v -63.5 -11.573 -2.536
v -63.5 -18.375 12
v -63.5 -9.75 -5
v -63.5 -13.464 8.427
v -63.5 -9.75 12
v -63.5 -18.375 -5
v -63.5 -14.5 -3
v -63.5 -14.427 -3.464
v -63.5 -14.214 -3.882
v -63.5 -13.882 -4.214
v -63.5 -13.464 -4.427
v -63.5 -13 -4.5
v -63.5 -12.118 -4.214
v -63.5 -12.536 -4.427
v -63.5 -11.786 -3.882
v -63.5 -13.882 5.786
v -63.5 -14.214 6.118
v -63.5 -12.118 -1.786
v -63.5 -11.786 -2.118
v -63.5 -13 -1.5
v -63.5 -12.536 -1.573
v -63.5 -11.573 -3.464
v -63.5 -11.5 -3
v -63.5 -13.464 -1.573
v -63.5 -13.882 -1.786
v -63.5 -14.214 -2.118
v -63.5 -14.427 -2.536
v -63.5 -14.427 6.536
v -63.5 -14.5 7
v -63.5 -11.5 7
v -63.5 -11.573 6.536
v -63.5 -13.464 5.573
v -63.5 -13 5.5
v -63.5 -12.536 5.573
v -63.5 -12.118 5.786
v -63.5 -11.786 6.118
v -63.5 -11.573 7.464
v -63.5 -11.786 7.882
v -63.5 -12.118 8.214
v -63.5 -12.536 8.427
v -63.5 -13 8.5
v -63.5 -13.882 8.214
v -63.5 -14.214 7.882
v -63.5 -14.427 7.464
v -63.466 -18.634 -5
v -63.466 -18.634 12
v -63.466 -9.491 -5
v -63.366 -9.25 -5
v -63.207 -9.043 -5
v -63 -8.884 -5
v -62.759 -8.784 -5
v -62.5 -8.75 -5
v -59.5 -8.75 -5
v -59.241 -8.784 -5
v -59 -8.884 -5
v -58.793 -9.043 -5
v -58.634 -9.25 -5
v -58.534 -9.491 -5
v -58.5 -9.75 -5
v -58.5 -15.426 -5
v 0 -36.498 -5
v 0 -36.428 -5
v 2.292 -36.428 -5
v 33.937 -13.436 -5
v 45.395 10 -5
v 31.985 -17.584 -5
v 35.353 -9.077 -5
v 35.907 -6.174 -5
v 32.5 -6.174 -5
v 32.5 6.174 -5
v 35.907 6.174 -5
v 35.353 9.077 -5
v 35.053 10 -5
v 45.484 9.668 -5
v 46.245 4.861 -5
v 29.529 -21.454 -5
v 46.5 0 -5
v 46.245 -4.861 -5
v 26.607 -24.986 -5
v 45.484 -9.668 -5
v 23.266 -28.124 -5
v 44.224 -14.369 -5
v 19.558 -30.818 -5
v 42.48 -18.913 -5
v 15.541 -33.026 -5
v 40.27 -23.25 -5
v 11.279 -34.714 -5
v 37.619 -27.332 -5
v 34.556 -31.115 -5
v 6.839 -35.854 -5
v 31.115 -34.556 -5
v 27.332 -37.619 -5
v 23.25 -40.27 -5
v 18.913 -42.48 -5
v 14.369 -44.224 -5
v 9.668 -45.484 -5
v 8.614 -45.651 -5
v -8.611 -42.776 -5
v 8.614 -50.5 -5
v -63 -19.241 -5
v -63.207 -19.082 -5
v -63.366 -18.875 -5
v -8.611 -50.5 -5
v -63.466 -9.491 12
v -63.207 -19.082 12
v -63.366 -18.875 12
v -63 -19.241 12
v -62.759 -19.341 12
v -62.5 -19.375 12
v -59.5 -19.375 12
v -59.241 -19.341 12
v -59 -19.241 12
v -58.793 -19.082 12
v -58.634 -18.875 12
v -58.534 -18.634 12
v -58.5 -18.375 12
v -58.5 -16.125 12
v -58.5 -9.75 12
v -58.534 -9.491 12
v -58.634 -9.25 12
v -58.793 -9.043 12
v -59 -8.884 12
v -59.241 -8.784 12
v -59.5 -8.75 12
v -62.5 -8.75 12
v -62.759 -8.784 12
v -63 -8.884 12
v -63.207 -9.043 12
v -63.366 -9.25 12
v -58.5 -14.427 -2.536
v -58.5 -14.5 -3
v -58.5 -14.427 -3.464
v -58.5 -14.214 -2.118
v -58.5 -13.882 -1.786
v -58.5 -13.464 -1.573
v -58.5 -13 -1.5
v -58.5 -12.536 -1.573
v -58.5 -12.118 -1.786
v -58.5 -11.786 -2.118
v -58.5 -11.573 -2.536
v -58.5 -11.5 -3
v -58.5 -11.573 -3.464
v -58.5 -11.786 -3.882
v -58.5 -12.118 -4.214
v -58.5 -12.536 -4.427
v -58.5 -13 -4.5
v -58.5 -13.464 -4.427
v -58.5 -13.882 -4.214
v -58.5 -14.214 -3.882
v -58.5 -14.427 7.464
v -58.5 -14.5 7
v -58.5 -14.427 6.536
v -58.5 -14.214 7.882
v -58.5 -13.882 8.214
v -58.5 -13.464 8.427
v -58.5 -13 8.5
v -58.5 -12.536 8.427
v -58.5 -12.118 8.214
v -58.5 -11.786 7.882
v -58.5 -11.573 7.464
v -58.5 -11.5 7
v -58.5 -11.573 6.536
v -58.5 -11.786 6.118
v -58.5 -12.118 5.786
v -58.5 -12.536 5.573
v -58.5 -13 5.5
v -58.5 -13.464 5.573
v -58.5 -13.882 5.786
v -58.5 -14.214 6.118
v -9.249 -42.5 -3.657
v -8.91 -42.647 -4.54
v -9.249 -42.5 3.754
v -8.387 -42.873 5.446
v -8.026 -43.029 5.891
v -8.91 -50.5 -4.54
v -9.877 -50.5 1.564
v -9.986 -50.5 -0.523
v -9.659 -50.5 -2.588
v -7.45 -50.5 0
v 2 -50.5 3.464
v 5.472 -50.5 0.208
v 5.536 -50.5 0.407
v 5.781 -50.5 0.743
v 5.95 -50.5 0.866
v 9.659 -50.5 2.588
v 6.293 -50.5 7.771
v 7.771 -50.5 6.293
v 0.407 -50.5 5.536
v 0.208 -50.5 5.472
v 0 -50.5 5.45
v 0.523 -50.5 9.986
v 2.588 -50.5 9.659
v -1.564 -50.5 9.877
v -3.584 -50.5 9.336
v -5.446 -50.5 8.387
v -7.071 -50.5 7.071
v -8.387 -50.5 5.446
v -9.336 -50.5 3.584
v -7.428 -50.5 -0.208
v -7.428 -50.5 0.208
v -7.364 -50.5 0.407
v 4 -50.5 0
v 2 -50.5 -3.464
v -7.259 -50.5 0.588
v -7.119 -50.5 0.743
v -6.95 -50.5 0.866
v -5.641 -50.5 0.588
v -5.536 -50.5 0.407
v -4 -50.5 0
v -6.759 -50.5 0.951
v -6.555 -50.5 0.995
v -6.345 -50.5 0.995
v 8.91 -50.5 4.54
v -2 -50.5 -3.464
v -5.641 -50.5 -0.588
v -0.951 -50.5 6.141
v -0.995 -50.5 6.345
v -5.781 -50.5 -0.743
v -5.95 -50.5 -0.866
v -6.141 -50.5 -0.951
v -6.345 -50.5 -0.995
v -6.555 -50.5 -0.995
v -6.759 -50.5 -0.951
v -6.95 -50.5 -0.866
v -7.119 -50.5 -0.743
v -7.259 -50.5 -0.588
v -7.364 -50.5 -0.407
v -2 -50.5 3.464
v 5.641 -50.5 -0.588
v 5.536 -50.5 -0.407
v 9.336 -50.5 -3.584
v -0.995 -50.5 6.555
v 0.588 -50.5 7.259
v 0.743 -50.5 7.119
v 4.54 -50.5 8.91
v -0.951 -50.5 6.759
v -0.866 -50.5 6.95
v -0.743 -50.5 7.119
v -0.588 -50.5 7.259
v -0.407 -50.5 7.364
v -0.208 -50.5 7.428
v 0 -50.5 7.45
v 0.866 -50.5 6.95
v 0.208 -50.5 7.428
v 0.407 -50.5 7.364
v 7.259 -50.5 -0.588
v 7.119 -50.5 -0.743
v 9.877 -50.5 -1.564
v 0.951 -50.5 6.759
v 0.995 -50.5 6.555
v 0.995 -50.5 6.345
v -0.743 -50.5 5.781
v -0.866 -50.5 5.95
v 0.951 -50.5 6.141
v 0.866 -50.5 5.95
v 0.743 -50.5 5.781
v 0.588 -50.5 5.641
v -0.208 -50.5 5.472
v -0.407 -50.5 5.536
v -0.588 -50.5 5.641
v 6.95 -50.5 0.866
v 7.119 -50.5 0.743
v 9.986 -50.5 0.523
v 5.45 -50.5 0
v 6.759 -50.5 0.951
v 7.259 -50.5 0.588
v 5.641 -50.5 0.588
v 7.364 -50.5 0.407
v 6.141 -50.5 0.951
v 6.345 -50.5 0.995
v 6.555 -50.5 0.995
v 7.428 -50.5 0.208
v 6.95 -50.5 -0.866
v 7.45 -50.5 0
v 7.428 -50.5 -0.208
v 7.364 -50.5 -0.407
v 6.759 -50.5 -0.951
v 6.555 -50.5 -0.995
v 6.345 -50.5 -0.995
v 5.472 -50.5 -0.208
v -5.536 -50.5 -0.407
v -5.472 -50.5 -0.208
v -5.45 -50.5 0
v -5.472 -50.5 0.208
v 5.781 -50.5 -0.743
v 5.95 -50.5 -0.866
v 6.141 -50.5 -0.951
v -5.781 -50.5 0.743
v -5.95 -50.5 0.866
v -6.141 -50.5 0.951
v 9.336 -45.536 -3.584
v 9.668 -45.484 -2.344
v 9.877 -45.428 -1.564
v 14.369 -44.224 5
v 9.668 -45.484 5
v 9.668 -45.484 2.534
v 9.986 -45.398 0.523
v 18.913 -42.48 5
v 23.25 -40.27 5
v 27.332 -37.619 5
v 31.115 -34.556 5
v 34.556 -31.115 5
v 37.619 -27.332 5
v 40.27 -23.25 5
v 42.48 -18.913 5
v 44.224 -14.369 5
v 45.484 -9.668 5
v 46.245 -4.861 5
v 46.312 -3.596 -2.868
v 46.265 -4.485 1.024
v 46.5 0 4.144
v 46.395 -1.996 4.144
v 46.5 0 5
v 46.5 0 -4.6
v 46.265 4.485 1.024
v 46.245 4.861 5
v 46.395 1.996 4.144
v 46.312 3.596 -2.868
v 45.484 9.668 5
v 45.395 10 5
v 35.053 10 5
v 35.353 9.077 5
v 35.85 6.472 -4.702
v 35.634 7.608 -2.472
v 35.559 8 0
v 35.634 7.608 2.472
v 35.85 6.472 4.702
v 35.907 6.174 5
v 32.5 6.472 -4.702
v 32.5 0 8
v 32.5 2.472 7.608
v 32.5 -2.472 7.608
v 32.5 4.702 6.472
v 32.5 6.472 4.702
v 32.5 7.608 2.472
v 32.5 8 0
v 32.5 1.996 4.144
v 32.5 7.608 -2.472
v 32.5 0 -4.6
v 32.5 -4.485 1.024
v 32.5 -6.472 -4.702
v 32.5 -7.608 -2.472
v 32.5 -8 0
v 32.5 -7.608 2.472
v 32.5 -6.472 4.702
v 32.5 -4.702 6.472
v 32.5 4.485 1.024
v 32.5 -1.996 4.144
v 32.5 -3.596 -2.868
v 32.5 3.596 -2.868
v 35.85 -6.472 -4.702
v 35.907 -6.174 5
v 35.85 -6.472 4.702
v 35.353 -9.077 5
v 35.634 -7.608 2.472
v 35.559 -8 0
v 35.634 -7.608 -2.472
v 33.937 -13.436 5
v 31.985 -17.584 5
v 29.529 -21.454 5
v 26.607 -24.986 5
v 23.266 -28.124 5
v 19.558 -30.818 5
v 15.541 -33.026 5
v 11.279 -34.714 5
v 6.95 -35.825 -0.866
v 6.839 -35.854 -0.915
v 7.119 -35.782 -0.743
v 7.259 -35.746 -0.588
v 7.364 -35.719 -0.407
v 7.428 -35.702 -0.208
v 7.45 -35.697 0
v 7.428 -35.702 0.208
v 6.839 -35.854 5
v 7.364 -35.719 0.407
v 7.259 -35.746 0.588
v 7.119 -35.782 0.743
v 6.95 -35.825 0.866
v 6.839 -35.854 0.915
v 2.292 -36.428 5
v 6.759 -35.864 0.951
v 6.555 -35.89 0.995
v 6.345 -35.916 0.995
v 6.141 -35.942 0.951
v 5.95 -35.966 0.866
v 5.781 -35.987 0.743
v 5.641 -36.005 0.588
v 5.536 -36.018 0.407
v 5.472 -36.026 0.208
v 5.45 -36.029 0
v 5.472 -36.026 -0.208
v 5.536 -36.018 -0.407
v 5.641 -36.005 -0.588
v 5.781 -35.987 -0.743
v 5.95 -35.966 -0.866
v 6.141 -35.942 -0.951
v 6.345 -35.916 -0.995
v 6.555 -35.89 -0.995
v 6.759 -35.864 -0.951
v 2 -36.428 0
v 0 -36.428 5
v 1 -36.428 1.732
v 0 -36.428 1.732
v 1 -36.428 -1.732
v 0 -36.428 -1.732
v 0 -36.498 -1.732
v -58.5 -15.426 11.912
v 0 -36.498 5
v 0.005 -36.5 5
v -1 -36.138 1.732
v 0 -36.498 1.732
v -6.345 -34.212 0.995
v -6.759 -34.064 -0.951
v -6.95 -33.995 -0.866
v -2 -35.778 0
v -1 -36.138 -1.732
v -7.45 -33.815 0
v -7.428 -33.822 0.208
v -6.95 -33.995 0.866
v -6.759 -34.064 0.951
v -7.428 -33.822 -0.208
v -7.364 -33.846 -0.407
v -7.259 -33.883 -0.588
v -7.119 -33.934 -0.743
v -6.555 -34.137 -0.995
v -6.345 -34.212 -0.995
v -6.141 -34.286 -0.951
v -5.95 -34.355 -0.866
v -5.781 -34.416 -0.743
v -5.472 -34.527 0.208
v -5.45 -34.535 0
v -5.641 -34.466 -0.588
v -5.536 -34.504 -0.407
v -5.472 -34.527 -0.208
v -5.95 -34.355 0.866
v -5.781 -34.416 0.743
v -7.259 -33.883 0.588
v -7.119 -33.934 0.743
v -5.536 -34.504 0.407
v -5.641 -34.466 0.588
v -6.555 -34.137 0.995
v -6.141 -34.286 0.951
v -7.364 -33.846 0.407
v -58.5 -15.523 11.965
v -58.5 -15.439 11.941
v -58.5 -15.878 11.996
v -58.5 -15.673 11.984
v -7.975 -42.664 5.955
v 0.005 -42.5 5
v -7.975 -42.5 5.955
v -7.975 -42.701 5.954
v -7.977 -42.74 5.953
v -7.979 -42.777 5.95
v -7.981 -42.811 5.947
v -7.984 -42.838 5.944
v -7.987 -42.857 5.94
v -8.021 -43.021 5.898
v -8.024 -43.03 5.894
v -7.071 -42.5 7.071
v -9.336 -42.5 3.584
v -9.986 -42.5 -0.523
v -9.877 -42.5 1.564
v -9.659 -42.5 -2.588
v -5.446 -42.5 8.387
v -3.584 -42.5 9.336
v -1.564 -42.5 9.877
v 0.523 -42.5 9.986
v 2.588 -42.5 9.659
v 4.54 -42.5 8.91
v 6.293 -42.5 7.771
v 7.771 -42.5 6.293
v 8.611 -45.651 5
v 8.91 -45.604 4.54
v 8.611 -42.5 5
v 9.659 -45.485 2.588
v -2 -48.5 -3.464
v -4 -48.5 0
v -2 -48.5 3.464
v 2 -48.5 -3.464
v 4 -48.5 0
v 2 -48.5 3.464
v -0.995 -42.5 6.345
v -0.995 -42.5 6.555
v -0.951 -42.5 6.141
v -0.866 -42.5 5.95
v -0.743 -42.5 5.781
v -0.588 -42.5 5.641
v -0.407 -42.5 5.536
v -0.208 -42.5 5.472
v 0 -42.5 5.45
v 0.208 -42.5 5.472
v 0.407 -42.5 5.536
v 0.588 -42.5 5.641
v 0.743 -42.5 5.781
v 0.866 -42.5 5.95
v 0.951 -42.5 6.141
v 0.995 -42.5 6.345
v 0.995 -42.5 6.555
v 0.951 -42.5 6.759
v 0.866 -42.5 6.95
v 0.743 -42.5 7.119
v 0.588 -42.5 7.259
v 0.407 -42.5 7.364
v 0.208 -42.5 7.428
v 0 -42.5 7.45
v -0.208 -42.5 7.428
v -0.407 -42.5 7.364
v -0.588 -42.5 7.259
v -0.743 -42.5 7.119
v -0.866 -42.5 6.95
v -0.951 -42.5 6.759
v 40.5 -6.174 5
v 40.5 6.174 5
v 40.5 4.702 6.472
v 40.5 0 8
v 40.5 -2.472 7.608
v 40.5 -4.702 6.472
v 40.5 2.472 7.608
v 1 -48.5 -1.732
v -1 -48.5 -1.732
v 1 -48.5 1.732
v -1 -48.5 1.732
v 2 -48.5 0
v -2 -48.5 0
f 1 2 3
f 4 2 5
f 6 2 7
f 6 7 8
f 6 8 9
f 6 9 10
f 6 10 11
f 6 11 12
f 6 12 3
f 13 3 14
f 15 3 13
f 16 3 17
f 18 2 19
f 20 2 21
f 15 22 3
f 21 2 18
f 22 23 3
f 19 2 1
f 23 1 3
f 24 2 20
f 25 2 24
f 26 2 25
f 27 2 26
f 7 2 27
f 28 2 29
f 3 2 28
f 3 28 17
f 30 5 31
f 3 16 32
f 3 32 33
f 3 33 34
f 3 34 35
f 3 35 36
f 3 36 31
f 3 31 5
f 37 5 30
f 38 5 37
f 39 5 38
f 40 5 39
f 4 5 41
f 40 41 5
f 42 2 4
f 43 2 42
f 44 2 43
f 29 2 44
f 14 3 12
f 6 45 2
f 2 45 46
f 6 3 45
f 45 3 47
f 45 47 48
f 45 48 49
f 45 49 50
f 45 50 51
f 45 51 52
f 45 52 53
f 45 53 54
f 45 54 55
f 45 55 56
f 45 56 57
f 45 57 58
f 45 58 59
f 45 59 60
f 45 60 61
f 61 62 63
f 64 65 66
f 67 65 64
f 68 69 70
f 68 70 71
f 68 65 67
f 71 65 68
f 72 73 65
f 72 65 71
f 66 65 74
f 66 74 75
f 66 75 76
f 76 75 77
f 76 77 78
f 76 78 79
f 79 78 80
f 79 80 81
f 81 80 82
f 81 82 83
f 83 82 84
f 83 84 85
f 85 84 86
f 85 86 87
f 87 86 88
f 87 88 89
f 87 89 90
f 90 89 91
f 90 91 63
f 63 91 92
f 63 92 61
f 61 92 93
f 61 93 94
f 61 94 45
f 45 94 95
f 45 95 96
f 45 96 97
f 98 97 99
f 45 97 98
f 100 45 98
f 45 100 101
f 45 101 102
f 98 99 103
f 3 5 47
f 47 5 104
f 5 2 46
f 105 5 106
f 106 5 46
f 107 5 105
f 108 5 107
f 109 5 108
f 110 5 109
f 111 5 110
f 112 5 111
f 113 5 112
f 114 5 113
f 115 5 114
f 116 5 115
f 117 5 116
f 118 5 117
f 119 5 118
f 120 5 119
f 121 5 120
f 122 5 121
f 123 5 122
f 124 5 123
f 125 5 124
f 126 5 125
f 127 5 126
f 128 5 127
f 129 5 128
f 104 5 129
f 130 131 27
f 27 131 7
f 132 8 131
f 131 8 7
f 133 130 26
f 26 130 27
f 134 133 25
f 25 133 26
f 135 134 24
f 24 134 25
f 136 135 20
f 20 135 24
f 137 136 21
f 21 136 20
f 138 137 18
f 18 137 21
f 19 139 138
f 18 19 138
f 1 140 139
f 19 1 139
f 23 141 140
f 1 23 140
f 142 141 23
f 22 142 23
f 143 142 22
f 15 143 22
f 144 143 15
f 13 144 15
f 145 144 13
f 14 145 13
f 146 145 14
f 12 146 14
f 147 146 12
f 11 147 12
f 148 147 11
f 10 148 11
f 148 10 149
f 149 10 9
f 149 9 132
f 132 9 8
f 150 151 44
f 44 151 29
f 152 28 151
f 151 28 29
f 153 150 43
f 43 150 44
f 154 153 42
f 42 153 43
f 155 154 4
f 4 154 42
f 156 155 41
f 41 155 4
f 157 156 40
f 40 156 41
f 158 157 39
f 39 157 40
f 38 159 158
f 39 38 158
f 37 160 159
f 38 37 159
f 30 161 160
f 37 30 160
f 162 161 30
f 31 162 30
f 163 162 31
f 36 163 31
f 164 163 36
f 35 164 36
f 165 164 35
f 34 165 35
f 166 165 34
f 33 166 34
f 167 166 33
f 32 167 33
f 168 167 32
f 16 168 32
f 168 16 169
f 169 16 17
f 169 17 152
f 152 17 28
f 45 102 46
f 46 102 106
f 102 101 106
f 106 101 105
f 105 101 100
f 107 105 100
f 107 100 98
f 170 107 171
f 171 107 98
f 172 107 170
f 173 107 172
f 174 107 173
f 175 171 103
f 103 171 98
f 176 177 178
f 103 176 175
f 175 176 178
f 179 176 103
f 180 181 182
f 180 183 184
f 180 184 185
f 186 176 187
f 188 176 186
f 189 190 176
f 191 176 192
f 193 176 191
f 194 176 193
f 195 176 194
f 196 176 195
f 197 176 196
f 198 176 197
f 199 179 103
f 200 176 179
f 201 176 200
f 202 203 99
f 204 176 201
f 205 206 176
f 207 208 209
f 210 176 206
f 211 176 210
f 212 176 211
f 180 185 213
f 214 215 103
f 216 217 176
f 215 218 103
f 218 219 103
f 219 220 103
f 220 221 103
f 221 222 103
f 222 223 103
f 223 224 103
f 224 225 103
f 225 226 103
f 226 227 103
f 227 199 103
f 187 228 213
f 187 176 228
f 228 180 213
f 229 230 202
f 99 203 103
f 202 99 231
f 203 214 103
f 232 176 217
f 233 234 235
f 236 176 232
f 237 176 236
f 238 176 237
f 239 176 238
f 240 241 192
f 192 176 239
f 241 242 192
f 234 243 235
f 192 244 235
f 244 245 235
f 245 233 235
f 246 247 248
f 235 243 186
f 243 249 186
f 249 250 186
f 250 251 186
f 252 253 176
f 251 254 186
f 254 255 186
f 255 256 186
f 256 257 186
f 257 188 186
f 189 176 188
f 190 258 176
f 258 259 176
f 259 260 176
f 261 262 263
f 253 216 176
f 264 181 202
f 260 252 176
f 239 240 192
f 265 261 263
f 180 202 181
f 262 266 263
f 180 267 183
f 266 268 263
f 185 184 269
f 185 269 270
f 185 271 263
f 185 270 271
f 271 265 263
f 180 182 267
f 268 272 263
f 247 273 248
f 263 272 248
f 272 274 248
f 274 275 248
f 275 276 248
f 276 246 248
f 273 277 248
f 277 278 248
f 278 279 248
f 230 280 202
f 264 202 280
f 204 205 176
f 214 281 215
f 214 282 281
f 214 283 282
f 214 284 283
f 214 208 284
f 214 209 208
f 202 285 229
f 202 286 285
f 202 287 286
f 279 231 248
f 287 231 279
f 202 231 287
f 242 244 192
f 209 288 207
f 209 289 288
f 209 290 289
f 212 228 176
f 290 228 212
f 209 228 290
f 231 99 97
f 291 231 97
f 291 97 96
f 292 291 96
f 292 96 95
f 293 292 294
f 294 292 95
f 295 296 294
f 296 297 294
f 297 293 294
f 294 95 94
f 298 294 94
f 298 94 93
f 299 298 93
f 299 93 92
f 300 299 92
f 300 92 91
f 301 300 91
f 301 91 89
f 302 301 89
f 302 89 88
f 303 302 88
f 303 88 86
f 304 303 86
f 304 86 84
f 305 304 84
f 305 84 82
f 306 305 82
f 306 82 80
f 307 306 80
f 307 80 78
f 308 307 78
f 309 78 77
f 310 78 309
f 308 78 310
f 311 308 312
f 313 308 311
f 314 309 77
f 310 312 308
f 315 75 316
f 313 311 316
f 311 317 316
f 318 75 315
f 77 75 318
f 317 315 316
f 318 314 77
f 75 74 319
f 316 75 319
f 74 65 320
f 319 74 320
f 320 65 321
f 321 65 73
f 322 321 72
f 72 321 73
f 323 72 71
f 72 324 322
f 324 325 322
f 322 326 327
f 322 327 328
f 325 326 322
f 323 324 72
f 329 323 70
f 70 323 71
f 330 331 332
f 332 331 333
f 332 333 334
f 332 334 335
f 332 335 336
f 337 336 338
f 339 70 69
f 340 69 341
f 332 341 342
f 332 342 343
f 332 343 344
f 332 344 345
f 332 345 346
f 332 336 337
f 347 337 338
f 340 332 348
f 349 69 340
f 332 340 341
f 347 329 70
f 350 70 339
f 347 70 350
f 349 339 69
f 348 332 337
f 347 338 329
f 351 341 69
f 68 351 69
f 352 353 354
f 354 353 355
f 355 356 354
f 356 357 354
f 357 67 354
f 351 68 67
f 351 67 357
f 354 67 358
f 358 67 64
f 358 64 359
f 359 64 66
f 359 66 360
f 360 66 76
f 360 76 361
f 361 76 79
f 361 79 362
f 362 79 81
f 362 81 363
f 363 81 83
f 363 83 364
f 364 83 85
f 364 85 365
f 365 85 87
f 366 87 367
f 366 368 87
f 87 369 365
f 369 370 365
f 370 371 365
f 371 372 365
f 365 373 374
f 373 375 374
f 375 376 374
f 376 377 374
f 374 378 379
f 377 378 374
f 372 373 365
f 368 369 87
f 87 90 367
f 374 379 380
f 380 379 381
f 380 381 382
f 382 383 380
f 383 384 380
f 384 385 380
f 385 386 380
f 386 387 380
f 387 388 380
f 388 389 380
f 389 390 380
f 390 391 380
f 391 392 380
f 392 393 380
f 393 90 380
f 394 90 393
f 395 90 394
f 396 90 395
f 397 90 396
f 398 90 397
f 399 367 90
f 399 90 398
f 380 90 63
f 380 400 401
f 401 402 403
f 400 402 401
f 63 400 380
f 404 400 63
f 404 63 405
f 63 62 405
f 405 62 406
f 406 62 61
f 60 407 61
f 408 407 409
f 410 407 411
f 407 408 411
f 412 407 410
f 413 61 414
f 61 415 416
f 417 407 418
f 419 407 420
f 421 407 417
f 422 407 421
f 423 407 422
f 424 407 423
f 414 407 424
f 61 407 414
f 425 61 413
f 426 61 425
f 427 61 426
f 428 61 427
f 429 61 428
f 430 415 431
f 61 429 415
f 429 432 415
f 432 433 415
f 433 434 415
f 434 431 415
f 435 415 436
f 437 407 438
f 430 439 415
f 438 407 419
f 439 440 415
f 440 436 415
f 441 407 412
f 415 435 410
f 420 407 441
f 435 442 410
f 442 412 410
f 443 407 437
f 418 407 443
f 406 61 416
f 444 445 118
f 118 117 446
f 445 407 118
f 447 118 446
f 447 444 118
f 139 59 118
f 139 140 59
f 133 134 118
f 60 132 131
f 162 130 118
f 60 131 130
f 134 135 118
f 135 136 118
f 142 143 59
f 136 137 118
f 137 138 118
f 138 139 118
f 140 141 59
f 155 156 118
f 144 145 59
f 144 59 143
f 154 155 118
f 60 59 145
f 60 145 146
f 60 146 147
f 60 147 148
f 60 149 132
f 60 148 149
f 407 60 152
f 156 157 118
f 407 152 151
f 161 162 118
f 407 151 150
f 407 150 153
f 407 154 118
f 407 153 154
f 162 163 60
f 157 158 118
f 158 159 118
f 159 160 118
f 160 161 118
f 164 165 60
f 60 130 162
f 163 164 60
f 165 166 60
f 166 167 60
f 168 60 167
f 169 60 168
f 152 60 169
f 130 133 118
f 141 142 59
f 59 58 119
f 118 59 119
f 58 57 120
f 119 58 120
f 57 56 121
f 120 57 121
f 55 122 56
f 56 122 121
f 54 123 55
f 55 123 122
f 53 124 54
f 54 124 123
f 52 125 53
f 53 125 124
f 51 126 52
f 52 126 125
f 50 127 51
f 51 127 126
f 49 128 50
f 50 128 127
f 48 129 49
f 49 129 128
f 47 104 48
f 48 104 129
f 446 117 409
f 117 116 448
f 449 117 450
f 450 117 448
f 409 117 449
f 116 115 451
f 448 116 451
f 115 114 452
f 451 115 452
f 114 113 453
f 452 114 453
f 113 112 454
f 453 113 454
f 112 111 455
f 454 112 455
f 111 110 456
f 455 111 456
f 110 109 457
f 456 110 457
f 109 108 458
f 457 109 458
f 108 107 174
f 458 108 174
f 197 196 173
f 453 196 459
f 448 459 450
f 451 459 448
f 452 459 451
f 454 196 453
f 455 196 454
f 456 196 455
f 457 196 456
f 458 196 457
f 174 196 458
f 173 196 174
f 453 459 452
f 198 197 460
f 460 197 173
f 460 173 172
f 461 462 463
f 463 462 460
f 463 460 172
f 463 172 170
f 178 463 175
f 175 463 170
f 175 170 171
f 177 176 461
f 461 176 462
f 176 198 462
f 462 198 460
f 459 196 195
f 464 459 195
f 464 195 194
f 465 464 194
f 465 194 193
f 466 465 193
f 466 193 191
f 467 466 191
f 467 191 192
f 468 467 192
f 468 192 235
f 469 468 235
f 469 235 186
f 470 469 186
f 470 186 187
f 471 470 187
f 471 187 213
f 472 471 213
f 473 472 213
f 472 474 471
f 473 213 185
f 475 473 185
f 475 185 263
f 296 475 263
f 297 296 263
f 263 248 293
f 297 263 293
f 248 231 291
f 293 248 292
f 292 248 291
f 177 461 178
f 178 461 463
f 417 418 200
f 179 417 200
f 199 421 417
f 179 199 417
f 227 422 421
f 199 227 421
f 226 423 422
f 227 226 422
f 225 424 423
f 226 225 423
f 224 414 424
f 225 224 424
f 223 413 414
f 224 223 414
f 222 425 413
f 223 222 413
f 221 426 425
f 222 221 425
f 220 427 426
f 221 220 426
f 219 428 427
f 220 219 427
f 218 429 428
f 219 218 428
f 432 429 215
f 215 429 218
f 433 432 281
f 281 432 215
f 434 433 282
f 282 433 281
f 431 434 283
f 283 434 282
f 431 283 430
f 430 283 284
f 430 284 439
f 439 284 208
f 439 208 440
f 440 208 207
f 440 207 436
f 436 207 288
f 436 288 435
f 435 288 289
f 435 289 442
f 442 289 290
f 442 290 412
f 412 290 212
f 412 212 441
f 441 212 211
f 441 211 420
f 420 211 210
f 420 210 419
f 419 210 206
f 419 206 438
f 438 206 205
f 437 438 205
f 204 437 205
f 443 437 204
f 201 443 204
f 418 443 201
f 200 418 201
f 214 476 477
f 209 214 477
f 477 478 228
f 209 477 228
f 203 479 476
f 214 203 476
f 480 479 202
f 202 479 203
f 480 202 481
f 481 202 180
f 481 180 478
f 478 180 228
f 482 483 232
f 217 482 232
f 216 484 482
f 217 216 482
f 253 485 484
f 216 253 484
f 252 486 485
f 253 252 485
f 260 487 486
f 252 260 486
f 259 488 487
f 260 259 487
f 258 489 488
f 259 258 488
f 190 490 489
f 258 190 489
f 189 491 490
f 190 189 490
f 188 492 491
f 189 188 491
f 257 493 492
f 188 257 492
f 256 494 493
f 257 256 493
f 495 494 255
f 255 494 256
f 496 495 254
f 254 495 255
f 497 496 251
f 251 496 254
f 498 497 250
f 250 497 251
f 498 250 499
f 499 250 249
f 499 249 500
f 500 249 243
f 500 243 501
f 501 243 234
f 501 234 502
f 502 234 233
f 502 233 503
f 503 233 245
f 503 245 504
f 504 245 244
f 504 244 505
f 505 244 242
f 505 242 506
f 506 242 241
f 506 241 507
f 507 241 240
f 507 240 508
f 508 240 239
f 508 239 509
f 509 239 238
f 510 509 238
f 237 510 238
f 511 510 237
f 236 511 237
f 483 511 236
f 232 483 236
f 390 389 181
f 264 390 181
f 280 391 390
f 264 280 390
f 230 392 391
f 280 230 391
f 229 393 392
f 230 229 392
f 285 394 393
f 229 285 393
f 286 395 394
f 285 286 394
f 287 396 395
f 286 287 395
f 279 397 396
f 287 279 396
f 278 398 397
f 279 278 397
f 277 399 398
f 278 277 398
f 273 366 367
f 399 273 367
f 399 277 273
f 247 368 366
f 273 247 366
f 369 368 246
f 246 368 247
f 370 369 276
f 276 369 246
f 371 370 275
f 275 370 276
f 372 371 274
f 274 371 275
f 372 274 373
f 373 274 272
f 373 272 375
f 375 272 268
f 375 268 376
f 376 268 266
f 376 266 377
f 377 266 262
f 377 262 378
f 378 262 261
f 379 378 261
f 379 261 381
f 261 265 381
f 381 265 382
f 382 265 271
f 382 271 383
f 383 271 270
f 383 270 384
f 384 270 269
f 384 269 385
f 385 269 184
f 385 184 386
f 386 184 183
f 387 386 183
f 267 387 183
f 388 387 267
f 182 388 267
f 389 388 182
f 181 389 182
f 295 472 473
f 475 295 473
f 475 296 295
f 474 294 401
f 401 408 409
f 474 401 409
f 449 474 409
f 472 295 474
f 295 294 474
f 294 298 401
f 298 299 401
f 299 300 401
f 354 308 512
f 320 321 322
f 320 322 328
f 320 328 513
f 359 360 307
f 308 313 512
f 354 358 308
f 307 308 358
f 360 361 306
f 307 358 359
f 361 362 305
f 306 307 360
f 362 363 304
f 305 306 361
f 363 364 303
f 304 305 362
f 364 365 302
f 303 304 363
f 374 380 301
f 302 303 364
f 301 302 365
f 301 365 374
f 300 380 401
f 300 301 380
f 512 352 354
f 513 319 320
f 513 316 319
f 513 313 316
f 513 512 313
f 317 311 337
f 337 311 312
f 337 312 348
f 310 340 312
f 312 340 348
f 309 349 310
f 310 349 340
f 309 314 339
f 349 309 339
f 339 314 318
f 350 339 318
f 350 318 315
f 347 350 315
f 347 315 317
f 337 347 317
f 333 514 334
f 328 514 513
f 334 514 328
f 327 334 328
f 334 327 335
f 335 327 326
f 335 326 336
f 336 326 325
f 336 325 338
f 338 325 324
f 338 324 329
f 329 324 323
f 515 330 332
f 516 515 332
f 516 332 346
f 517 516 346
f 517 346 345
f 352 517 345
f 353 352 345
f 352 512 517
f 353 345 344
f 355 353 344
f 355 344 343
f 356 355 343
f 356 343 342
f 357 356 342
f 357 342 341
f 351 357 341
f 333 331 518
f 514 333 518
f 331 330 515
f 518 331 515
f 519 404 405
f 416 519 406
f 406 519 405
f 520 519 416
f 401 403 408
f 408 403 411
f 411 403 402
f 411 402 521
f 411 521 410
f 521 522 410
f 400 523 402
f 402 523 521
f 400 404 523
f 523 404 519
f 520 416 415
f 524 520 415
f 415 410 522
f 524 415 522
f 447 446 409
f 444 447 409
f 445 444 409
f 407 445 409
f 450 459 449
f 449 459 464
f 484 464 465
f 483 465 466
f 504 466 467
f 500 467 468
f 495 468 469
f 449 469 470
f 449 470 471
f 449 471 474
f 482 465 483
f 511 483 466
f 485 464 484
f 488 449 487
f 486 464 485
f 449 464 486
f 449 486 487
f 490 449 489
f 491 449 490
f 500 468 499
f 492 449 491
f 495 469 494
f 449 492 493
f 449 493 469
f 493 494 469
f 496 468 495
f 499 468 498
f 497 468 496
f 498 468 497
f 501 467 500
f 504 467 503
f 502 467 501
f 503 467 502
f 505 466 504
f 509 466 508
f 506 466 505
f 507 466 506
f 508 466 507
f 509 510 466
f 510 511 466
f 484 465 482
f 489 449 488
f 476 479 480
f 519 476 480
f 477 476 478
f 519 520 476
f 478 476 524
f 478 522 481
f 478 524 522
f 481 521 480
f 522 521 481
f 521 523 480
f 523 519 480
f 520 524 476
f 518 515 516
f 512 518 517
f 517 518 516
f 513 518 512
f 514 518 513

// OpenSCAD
// file: obiscad/bcube.scad
//------------------------------------------------------------------------------
//  Bevel edge cube.
//  (c) Juan Gonzalez-Gomez (Obijuan), Sep-2012
//------------------------------------------------------------------------------

//----------------- IMPLEMENTATION USING THE MINKOWSKI OPERATOR ----------------

//------------------------------------------------------------------------------
//-- Bevel Cube main function
//-- Parameters:
//--   * Size:  Cube size
//--   * cr : Corner radius (if cr==0, a standar cube is built)
//--   * cres:  Corner resolution (in points). cres=0 means flat corners
//------------------------------------------------------------------------------
module bcube(size,cr=0,cres=0)
{
  //-- Internal cube size
  bsize = size - 2*[cr,cr,0];

  //-- Get the (x,y) coorner coordinates in the 1st cuadrant
  x = bsize[0]/2;
  y = bsize[1]/2;

  //-- A corner radius of 0 means a standar cube!
  if (cr==0)
    cube(bsize,center=true);
  else {

      
      //-- The height of minkowski object is double. So
      //-- we sould scale by 0.5
      scale([1,1,0.5])

      //-- This translation is for centering the minkowski objet
      translate([-x, -y,0])

      //-- Built the  beveled cube with minkowski
      minkowski() {

        //-- Internal cube
        cube(bsize,center=true);

        //-- Cylinder in the corner (1st cuadrant)
        translate([x,y, 0])
          cylinder(r=cr, h=bsize[2],center=true, $fn=4*(cres+1));
      }
  }

}


//-- Examples of use of the bcube() module

//-- Standar cube
translate([-15,15,0])
bcube([20,20,10]);

//-- Beveled cube (0 point resolution)
translate([15,15,0])
  bcube([20,20,10],cr=4);

//-- Beveled cube (1 point resolution)
translate([-15,-15,0])
  bcube([20,20,10],cr=4, cres=1);

//-- Beveled cube (4 points resolution)
translate([15,-15,0])
  bcube([20,20,10],cr=4, cres=4);
// file: DropcamHolder.scad
// DropCamHolder for the PrintrCamBot by Carlosgs (http://carlosgs.es)

dropcam_diameter = 45; // [mm] Adjust to real value before printing!
dropcam_plate_thickness = 5; // [mm]


dropcam_plate_extraRadius = 10;

dh_ringRadius = dropcam_diameter/2+dropcam_plate_extraRadius;

idleHolderDiam = 8;
idleHolderLen = 8;

servoHolderDiam = 20;
servoHolderLen = 8/2;

axisHoleDiam = 4;

module holderRing() {
	difference() {
		cylinder(r=dh_ringRadius,h=dropcam_plate_thickness,center=true,$fn=60);
		cylinder(r=dropcam_diameter/2,h=dropcam_plate_thickness*2,center=true,$fn=50);
	}
}



nholes = 4;
hole_distance_from_center = 6.45;
holes_diam = 2;

module servoHolder(holeAngle=90) {
	difference() {
		cylinder(r=servoHolderDiam/2,h=servoHolderLen*2,center=true,$fn=30);
		//screws
		for(i=[0:nholes-1])
			rotate( [0, 0, i*360/(nholes)+45], $fn=20 )
				translate( [hole_distance_from_center, 0] )
					cylinder( r=holes_diam/2, h=100, center=true, $fn=30 );
		// Hole for the middle screw
		translate([0,0,2]) rotate([0,0,holeAngle]) cylinder(r=axisHoleDiam,h=10,$fn=6);
	}
}




module idleHolder() {
	cylinder(r=idleHolderDiam/2,h=idleHolderLen*2,center=true,$fn=20);
}

module dropCamHolder() {
	difference() {
		union() {
			holderRing();
			translate([dh_ringRadius,0,0]) rotate([0,90,0])
				idleHolder();
			translate([-dh_ringRadius,0,0]) rotate([0,-90,0])
				servoHolder();
		}
		translate([0,0,-dropcam_plate_thickness/2-100/2])
			cube([100,100,100],center=true);
		// Axis hole
		rotate([0,90,0]) rotate([0,0,90]) cylinder(r=axisHoleDiam/2,h=200,center=true,$fn=6);
	}
}

//dropCamHolder();
// main file
// Main Frame for the PrintrCamBot by Carlosgs (http://carlosgs.es)

include <DropcamHolder.scad>
use <obiscad/bcube.scad>

mainFrame_diameter = 2*dh_ringRadius+idleHolderLen; // [mm]
mainFrame_plate_thickness = 10; // [mm]


mainFrame_plate_extraRadius = 10;

mf_ringRadius = mainFrame_diameter/2+mainFrame_plate_extraRadius;

mf_idleHolderDiam = idleHolderDiam*2;
mf_idleHolderLen = idleHolderLen/2;

mf_axisHoleDiam = idleHolderDiam+1.2;

mf_ringCutOut = 10;

servo_knobFromScrew = 18;

module mf_holderRing() {
	difference() {
		cylinder(r=mf_ringRadius,h=mainFrame_plate_thickness,center=true,$fn=60);
		cylinder(r=mainFrame_diameter/2,h=mainFrame_plate_thickness*2,center=true,$fn=50);
		translate([-200/2,0,0])
			cube([200,200,200],center=true);
	}
}


module mf_idleHolder() {
	cylinder(r=mf_idleHolderDiam/2,h=mf_idleHolderLen*2,center=true,$fn=20);
}


// Servo screws
screwOffset = 2.4;
screwDistFromKnobAxis = 13;
screwSupport_h = 8.5;
screwSupport_w = 5;
screwDist = 10;
screwDiam = 3;

servoAxisOffset = 2;

module screws() {
	translate([0,screwDist/2,0]) {
		cylinder(r=screwDiam/2,h=100,center=true,$fn=20);
	}
	translate([0,-screwDist/2,0]) {
		cylinder(r=screwDiam/2,h=100,center=true,$fn=20);
	}
}

module FrameServoHolder() {
	difference() {
		bcube([screwSupport_w,screwSupport_h,screwDist*2],cr=1,cres=5);
		rotate([0,90,0]) rotate([0,0,90]) screws();
	}
}


module mainFrame() {
	difference() {
		union() {
			mf_holderRing();
			translate([-servo_knobFromScrew-dh_ringRadius-idleHolderLen-screwSupport_w/2,-screwDistFromKnobAxis,servoAxisOffset])
				FrameServoHolder();
			hull() {
				translate([0,-mf_ringRadius+mainFrame_plate_extraRadius/2,0])
					cube([0.01,mainFrame_plate_extraRadius,mainFrame_plate_thickness],center=true);
				translate([-servo_knobFromScrew-dh_ringRadius-idleHolderLen-screwSupport_w/2,-screwDistFromKnobAxis-screwSupport_h/2,servoAxisOffset])
					bcube([screwSupport_w,screwSupport_h/2,screwDist*2],cr=1,cres=5);
			}

			translate([mf_ringRadius-mainFrame_plate_extraRadius,0,0]) rotate([0,90,0])
				mf_idleHolder();

			// Top servo holder
			rotate([0,0,90]) translate([-mf_ringRadius,0,0]) rotate([0,-90,0]) rotate([0,0,45])
				servoHolder(holeAngle=45);
		}


		//Screws for the top servo
		rotate([0,0,90]) translate([-mf_ringRadius,0,0]) rotate([0,-90,0]) rotate([0,0,45])
			for(i=[0:nholes-1])
				rotate( [0, 0, i*360/(nholes)+45], $fn=20 )
					translate( [hole_distance_from_center, 0] )
						cylinder( r=holes_diam/2, h=100, center=true, $fn=30 );

		translate([0,0,-mainFrame_plate_thickness/2-100/2])
			cube([200,200,100],center=true);
		translate([0,mf_ringCutOut+200/2,0])
			cube([200,200,100],center=true);
		// Axis hole
		rotate([0,90,0]) cylinder(r=mf_axisHoleDiam/2,h=200,$fn=7);
		// Axis hole
		rotate([90,0,0]) cylinder(r=axisHoleDiam/2,h=200,center=true,$fn=6);
	}
}

%dropCamHolder();

mainFrame();
